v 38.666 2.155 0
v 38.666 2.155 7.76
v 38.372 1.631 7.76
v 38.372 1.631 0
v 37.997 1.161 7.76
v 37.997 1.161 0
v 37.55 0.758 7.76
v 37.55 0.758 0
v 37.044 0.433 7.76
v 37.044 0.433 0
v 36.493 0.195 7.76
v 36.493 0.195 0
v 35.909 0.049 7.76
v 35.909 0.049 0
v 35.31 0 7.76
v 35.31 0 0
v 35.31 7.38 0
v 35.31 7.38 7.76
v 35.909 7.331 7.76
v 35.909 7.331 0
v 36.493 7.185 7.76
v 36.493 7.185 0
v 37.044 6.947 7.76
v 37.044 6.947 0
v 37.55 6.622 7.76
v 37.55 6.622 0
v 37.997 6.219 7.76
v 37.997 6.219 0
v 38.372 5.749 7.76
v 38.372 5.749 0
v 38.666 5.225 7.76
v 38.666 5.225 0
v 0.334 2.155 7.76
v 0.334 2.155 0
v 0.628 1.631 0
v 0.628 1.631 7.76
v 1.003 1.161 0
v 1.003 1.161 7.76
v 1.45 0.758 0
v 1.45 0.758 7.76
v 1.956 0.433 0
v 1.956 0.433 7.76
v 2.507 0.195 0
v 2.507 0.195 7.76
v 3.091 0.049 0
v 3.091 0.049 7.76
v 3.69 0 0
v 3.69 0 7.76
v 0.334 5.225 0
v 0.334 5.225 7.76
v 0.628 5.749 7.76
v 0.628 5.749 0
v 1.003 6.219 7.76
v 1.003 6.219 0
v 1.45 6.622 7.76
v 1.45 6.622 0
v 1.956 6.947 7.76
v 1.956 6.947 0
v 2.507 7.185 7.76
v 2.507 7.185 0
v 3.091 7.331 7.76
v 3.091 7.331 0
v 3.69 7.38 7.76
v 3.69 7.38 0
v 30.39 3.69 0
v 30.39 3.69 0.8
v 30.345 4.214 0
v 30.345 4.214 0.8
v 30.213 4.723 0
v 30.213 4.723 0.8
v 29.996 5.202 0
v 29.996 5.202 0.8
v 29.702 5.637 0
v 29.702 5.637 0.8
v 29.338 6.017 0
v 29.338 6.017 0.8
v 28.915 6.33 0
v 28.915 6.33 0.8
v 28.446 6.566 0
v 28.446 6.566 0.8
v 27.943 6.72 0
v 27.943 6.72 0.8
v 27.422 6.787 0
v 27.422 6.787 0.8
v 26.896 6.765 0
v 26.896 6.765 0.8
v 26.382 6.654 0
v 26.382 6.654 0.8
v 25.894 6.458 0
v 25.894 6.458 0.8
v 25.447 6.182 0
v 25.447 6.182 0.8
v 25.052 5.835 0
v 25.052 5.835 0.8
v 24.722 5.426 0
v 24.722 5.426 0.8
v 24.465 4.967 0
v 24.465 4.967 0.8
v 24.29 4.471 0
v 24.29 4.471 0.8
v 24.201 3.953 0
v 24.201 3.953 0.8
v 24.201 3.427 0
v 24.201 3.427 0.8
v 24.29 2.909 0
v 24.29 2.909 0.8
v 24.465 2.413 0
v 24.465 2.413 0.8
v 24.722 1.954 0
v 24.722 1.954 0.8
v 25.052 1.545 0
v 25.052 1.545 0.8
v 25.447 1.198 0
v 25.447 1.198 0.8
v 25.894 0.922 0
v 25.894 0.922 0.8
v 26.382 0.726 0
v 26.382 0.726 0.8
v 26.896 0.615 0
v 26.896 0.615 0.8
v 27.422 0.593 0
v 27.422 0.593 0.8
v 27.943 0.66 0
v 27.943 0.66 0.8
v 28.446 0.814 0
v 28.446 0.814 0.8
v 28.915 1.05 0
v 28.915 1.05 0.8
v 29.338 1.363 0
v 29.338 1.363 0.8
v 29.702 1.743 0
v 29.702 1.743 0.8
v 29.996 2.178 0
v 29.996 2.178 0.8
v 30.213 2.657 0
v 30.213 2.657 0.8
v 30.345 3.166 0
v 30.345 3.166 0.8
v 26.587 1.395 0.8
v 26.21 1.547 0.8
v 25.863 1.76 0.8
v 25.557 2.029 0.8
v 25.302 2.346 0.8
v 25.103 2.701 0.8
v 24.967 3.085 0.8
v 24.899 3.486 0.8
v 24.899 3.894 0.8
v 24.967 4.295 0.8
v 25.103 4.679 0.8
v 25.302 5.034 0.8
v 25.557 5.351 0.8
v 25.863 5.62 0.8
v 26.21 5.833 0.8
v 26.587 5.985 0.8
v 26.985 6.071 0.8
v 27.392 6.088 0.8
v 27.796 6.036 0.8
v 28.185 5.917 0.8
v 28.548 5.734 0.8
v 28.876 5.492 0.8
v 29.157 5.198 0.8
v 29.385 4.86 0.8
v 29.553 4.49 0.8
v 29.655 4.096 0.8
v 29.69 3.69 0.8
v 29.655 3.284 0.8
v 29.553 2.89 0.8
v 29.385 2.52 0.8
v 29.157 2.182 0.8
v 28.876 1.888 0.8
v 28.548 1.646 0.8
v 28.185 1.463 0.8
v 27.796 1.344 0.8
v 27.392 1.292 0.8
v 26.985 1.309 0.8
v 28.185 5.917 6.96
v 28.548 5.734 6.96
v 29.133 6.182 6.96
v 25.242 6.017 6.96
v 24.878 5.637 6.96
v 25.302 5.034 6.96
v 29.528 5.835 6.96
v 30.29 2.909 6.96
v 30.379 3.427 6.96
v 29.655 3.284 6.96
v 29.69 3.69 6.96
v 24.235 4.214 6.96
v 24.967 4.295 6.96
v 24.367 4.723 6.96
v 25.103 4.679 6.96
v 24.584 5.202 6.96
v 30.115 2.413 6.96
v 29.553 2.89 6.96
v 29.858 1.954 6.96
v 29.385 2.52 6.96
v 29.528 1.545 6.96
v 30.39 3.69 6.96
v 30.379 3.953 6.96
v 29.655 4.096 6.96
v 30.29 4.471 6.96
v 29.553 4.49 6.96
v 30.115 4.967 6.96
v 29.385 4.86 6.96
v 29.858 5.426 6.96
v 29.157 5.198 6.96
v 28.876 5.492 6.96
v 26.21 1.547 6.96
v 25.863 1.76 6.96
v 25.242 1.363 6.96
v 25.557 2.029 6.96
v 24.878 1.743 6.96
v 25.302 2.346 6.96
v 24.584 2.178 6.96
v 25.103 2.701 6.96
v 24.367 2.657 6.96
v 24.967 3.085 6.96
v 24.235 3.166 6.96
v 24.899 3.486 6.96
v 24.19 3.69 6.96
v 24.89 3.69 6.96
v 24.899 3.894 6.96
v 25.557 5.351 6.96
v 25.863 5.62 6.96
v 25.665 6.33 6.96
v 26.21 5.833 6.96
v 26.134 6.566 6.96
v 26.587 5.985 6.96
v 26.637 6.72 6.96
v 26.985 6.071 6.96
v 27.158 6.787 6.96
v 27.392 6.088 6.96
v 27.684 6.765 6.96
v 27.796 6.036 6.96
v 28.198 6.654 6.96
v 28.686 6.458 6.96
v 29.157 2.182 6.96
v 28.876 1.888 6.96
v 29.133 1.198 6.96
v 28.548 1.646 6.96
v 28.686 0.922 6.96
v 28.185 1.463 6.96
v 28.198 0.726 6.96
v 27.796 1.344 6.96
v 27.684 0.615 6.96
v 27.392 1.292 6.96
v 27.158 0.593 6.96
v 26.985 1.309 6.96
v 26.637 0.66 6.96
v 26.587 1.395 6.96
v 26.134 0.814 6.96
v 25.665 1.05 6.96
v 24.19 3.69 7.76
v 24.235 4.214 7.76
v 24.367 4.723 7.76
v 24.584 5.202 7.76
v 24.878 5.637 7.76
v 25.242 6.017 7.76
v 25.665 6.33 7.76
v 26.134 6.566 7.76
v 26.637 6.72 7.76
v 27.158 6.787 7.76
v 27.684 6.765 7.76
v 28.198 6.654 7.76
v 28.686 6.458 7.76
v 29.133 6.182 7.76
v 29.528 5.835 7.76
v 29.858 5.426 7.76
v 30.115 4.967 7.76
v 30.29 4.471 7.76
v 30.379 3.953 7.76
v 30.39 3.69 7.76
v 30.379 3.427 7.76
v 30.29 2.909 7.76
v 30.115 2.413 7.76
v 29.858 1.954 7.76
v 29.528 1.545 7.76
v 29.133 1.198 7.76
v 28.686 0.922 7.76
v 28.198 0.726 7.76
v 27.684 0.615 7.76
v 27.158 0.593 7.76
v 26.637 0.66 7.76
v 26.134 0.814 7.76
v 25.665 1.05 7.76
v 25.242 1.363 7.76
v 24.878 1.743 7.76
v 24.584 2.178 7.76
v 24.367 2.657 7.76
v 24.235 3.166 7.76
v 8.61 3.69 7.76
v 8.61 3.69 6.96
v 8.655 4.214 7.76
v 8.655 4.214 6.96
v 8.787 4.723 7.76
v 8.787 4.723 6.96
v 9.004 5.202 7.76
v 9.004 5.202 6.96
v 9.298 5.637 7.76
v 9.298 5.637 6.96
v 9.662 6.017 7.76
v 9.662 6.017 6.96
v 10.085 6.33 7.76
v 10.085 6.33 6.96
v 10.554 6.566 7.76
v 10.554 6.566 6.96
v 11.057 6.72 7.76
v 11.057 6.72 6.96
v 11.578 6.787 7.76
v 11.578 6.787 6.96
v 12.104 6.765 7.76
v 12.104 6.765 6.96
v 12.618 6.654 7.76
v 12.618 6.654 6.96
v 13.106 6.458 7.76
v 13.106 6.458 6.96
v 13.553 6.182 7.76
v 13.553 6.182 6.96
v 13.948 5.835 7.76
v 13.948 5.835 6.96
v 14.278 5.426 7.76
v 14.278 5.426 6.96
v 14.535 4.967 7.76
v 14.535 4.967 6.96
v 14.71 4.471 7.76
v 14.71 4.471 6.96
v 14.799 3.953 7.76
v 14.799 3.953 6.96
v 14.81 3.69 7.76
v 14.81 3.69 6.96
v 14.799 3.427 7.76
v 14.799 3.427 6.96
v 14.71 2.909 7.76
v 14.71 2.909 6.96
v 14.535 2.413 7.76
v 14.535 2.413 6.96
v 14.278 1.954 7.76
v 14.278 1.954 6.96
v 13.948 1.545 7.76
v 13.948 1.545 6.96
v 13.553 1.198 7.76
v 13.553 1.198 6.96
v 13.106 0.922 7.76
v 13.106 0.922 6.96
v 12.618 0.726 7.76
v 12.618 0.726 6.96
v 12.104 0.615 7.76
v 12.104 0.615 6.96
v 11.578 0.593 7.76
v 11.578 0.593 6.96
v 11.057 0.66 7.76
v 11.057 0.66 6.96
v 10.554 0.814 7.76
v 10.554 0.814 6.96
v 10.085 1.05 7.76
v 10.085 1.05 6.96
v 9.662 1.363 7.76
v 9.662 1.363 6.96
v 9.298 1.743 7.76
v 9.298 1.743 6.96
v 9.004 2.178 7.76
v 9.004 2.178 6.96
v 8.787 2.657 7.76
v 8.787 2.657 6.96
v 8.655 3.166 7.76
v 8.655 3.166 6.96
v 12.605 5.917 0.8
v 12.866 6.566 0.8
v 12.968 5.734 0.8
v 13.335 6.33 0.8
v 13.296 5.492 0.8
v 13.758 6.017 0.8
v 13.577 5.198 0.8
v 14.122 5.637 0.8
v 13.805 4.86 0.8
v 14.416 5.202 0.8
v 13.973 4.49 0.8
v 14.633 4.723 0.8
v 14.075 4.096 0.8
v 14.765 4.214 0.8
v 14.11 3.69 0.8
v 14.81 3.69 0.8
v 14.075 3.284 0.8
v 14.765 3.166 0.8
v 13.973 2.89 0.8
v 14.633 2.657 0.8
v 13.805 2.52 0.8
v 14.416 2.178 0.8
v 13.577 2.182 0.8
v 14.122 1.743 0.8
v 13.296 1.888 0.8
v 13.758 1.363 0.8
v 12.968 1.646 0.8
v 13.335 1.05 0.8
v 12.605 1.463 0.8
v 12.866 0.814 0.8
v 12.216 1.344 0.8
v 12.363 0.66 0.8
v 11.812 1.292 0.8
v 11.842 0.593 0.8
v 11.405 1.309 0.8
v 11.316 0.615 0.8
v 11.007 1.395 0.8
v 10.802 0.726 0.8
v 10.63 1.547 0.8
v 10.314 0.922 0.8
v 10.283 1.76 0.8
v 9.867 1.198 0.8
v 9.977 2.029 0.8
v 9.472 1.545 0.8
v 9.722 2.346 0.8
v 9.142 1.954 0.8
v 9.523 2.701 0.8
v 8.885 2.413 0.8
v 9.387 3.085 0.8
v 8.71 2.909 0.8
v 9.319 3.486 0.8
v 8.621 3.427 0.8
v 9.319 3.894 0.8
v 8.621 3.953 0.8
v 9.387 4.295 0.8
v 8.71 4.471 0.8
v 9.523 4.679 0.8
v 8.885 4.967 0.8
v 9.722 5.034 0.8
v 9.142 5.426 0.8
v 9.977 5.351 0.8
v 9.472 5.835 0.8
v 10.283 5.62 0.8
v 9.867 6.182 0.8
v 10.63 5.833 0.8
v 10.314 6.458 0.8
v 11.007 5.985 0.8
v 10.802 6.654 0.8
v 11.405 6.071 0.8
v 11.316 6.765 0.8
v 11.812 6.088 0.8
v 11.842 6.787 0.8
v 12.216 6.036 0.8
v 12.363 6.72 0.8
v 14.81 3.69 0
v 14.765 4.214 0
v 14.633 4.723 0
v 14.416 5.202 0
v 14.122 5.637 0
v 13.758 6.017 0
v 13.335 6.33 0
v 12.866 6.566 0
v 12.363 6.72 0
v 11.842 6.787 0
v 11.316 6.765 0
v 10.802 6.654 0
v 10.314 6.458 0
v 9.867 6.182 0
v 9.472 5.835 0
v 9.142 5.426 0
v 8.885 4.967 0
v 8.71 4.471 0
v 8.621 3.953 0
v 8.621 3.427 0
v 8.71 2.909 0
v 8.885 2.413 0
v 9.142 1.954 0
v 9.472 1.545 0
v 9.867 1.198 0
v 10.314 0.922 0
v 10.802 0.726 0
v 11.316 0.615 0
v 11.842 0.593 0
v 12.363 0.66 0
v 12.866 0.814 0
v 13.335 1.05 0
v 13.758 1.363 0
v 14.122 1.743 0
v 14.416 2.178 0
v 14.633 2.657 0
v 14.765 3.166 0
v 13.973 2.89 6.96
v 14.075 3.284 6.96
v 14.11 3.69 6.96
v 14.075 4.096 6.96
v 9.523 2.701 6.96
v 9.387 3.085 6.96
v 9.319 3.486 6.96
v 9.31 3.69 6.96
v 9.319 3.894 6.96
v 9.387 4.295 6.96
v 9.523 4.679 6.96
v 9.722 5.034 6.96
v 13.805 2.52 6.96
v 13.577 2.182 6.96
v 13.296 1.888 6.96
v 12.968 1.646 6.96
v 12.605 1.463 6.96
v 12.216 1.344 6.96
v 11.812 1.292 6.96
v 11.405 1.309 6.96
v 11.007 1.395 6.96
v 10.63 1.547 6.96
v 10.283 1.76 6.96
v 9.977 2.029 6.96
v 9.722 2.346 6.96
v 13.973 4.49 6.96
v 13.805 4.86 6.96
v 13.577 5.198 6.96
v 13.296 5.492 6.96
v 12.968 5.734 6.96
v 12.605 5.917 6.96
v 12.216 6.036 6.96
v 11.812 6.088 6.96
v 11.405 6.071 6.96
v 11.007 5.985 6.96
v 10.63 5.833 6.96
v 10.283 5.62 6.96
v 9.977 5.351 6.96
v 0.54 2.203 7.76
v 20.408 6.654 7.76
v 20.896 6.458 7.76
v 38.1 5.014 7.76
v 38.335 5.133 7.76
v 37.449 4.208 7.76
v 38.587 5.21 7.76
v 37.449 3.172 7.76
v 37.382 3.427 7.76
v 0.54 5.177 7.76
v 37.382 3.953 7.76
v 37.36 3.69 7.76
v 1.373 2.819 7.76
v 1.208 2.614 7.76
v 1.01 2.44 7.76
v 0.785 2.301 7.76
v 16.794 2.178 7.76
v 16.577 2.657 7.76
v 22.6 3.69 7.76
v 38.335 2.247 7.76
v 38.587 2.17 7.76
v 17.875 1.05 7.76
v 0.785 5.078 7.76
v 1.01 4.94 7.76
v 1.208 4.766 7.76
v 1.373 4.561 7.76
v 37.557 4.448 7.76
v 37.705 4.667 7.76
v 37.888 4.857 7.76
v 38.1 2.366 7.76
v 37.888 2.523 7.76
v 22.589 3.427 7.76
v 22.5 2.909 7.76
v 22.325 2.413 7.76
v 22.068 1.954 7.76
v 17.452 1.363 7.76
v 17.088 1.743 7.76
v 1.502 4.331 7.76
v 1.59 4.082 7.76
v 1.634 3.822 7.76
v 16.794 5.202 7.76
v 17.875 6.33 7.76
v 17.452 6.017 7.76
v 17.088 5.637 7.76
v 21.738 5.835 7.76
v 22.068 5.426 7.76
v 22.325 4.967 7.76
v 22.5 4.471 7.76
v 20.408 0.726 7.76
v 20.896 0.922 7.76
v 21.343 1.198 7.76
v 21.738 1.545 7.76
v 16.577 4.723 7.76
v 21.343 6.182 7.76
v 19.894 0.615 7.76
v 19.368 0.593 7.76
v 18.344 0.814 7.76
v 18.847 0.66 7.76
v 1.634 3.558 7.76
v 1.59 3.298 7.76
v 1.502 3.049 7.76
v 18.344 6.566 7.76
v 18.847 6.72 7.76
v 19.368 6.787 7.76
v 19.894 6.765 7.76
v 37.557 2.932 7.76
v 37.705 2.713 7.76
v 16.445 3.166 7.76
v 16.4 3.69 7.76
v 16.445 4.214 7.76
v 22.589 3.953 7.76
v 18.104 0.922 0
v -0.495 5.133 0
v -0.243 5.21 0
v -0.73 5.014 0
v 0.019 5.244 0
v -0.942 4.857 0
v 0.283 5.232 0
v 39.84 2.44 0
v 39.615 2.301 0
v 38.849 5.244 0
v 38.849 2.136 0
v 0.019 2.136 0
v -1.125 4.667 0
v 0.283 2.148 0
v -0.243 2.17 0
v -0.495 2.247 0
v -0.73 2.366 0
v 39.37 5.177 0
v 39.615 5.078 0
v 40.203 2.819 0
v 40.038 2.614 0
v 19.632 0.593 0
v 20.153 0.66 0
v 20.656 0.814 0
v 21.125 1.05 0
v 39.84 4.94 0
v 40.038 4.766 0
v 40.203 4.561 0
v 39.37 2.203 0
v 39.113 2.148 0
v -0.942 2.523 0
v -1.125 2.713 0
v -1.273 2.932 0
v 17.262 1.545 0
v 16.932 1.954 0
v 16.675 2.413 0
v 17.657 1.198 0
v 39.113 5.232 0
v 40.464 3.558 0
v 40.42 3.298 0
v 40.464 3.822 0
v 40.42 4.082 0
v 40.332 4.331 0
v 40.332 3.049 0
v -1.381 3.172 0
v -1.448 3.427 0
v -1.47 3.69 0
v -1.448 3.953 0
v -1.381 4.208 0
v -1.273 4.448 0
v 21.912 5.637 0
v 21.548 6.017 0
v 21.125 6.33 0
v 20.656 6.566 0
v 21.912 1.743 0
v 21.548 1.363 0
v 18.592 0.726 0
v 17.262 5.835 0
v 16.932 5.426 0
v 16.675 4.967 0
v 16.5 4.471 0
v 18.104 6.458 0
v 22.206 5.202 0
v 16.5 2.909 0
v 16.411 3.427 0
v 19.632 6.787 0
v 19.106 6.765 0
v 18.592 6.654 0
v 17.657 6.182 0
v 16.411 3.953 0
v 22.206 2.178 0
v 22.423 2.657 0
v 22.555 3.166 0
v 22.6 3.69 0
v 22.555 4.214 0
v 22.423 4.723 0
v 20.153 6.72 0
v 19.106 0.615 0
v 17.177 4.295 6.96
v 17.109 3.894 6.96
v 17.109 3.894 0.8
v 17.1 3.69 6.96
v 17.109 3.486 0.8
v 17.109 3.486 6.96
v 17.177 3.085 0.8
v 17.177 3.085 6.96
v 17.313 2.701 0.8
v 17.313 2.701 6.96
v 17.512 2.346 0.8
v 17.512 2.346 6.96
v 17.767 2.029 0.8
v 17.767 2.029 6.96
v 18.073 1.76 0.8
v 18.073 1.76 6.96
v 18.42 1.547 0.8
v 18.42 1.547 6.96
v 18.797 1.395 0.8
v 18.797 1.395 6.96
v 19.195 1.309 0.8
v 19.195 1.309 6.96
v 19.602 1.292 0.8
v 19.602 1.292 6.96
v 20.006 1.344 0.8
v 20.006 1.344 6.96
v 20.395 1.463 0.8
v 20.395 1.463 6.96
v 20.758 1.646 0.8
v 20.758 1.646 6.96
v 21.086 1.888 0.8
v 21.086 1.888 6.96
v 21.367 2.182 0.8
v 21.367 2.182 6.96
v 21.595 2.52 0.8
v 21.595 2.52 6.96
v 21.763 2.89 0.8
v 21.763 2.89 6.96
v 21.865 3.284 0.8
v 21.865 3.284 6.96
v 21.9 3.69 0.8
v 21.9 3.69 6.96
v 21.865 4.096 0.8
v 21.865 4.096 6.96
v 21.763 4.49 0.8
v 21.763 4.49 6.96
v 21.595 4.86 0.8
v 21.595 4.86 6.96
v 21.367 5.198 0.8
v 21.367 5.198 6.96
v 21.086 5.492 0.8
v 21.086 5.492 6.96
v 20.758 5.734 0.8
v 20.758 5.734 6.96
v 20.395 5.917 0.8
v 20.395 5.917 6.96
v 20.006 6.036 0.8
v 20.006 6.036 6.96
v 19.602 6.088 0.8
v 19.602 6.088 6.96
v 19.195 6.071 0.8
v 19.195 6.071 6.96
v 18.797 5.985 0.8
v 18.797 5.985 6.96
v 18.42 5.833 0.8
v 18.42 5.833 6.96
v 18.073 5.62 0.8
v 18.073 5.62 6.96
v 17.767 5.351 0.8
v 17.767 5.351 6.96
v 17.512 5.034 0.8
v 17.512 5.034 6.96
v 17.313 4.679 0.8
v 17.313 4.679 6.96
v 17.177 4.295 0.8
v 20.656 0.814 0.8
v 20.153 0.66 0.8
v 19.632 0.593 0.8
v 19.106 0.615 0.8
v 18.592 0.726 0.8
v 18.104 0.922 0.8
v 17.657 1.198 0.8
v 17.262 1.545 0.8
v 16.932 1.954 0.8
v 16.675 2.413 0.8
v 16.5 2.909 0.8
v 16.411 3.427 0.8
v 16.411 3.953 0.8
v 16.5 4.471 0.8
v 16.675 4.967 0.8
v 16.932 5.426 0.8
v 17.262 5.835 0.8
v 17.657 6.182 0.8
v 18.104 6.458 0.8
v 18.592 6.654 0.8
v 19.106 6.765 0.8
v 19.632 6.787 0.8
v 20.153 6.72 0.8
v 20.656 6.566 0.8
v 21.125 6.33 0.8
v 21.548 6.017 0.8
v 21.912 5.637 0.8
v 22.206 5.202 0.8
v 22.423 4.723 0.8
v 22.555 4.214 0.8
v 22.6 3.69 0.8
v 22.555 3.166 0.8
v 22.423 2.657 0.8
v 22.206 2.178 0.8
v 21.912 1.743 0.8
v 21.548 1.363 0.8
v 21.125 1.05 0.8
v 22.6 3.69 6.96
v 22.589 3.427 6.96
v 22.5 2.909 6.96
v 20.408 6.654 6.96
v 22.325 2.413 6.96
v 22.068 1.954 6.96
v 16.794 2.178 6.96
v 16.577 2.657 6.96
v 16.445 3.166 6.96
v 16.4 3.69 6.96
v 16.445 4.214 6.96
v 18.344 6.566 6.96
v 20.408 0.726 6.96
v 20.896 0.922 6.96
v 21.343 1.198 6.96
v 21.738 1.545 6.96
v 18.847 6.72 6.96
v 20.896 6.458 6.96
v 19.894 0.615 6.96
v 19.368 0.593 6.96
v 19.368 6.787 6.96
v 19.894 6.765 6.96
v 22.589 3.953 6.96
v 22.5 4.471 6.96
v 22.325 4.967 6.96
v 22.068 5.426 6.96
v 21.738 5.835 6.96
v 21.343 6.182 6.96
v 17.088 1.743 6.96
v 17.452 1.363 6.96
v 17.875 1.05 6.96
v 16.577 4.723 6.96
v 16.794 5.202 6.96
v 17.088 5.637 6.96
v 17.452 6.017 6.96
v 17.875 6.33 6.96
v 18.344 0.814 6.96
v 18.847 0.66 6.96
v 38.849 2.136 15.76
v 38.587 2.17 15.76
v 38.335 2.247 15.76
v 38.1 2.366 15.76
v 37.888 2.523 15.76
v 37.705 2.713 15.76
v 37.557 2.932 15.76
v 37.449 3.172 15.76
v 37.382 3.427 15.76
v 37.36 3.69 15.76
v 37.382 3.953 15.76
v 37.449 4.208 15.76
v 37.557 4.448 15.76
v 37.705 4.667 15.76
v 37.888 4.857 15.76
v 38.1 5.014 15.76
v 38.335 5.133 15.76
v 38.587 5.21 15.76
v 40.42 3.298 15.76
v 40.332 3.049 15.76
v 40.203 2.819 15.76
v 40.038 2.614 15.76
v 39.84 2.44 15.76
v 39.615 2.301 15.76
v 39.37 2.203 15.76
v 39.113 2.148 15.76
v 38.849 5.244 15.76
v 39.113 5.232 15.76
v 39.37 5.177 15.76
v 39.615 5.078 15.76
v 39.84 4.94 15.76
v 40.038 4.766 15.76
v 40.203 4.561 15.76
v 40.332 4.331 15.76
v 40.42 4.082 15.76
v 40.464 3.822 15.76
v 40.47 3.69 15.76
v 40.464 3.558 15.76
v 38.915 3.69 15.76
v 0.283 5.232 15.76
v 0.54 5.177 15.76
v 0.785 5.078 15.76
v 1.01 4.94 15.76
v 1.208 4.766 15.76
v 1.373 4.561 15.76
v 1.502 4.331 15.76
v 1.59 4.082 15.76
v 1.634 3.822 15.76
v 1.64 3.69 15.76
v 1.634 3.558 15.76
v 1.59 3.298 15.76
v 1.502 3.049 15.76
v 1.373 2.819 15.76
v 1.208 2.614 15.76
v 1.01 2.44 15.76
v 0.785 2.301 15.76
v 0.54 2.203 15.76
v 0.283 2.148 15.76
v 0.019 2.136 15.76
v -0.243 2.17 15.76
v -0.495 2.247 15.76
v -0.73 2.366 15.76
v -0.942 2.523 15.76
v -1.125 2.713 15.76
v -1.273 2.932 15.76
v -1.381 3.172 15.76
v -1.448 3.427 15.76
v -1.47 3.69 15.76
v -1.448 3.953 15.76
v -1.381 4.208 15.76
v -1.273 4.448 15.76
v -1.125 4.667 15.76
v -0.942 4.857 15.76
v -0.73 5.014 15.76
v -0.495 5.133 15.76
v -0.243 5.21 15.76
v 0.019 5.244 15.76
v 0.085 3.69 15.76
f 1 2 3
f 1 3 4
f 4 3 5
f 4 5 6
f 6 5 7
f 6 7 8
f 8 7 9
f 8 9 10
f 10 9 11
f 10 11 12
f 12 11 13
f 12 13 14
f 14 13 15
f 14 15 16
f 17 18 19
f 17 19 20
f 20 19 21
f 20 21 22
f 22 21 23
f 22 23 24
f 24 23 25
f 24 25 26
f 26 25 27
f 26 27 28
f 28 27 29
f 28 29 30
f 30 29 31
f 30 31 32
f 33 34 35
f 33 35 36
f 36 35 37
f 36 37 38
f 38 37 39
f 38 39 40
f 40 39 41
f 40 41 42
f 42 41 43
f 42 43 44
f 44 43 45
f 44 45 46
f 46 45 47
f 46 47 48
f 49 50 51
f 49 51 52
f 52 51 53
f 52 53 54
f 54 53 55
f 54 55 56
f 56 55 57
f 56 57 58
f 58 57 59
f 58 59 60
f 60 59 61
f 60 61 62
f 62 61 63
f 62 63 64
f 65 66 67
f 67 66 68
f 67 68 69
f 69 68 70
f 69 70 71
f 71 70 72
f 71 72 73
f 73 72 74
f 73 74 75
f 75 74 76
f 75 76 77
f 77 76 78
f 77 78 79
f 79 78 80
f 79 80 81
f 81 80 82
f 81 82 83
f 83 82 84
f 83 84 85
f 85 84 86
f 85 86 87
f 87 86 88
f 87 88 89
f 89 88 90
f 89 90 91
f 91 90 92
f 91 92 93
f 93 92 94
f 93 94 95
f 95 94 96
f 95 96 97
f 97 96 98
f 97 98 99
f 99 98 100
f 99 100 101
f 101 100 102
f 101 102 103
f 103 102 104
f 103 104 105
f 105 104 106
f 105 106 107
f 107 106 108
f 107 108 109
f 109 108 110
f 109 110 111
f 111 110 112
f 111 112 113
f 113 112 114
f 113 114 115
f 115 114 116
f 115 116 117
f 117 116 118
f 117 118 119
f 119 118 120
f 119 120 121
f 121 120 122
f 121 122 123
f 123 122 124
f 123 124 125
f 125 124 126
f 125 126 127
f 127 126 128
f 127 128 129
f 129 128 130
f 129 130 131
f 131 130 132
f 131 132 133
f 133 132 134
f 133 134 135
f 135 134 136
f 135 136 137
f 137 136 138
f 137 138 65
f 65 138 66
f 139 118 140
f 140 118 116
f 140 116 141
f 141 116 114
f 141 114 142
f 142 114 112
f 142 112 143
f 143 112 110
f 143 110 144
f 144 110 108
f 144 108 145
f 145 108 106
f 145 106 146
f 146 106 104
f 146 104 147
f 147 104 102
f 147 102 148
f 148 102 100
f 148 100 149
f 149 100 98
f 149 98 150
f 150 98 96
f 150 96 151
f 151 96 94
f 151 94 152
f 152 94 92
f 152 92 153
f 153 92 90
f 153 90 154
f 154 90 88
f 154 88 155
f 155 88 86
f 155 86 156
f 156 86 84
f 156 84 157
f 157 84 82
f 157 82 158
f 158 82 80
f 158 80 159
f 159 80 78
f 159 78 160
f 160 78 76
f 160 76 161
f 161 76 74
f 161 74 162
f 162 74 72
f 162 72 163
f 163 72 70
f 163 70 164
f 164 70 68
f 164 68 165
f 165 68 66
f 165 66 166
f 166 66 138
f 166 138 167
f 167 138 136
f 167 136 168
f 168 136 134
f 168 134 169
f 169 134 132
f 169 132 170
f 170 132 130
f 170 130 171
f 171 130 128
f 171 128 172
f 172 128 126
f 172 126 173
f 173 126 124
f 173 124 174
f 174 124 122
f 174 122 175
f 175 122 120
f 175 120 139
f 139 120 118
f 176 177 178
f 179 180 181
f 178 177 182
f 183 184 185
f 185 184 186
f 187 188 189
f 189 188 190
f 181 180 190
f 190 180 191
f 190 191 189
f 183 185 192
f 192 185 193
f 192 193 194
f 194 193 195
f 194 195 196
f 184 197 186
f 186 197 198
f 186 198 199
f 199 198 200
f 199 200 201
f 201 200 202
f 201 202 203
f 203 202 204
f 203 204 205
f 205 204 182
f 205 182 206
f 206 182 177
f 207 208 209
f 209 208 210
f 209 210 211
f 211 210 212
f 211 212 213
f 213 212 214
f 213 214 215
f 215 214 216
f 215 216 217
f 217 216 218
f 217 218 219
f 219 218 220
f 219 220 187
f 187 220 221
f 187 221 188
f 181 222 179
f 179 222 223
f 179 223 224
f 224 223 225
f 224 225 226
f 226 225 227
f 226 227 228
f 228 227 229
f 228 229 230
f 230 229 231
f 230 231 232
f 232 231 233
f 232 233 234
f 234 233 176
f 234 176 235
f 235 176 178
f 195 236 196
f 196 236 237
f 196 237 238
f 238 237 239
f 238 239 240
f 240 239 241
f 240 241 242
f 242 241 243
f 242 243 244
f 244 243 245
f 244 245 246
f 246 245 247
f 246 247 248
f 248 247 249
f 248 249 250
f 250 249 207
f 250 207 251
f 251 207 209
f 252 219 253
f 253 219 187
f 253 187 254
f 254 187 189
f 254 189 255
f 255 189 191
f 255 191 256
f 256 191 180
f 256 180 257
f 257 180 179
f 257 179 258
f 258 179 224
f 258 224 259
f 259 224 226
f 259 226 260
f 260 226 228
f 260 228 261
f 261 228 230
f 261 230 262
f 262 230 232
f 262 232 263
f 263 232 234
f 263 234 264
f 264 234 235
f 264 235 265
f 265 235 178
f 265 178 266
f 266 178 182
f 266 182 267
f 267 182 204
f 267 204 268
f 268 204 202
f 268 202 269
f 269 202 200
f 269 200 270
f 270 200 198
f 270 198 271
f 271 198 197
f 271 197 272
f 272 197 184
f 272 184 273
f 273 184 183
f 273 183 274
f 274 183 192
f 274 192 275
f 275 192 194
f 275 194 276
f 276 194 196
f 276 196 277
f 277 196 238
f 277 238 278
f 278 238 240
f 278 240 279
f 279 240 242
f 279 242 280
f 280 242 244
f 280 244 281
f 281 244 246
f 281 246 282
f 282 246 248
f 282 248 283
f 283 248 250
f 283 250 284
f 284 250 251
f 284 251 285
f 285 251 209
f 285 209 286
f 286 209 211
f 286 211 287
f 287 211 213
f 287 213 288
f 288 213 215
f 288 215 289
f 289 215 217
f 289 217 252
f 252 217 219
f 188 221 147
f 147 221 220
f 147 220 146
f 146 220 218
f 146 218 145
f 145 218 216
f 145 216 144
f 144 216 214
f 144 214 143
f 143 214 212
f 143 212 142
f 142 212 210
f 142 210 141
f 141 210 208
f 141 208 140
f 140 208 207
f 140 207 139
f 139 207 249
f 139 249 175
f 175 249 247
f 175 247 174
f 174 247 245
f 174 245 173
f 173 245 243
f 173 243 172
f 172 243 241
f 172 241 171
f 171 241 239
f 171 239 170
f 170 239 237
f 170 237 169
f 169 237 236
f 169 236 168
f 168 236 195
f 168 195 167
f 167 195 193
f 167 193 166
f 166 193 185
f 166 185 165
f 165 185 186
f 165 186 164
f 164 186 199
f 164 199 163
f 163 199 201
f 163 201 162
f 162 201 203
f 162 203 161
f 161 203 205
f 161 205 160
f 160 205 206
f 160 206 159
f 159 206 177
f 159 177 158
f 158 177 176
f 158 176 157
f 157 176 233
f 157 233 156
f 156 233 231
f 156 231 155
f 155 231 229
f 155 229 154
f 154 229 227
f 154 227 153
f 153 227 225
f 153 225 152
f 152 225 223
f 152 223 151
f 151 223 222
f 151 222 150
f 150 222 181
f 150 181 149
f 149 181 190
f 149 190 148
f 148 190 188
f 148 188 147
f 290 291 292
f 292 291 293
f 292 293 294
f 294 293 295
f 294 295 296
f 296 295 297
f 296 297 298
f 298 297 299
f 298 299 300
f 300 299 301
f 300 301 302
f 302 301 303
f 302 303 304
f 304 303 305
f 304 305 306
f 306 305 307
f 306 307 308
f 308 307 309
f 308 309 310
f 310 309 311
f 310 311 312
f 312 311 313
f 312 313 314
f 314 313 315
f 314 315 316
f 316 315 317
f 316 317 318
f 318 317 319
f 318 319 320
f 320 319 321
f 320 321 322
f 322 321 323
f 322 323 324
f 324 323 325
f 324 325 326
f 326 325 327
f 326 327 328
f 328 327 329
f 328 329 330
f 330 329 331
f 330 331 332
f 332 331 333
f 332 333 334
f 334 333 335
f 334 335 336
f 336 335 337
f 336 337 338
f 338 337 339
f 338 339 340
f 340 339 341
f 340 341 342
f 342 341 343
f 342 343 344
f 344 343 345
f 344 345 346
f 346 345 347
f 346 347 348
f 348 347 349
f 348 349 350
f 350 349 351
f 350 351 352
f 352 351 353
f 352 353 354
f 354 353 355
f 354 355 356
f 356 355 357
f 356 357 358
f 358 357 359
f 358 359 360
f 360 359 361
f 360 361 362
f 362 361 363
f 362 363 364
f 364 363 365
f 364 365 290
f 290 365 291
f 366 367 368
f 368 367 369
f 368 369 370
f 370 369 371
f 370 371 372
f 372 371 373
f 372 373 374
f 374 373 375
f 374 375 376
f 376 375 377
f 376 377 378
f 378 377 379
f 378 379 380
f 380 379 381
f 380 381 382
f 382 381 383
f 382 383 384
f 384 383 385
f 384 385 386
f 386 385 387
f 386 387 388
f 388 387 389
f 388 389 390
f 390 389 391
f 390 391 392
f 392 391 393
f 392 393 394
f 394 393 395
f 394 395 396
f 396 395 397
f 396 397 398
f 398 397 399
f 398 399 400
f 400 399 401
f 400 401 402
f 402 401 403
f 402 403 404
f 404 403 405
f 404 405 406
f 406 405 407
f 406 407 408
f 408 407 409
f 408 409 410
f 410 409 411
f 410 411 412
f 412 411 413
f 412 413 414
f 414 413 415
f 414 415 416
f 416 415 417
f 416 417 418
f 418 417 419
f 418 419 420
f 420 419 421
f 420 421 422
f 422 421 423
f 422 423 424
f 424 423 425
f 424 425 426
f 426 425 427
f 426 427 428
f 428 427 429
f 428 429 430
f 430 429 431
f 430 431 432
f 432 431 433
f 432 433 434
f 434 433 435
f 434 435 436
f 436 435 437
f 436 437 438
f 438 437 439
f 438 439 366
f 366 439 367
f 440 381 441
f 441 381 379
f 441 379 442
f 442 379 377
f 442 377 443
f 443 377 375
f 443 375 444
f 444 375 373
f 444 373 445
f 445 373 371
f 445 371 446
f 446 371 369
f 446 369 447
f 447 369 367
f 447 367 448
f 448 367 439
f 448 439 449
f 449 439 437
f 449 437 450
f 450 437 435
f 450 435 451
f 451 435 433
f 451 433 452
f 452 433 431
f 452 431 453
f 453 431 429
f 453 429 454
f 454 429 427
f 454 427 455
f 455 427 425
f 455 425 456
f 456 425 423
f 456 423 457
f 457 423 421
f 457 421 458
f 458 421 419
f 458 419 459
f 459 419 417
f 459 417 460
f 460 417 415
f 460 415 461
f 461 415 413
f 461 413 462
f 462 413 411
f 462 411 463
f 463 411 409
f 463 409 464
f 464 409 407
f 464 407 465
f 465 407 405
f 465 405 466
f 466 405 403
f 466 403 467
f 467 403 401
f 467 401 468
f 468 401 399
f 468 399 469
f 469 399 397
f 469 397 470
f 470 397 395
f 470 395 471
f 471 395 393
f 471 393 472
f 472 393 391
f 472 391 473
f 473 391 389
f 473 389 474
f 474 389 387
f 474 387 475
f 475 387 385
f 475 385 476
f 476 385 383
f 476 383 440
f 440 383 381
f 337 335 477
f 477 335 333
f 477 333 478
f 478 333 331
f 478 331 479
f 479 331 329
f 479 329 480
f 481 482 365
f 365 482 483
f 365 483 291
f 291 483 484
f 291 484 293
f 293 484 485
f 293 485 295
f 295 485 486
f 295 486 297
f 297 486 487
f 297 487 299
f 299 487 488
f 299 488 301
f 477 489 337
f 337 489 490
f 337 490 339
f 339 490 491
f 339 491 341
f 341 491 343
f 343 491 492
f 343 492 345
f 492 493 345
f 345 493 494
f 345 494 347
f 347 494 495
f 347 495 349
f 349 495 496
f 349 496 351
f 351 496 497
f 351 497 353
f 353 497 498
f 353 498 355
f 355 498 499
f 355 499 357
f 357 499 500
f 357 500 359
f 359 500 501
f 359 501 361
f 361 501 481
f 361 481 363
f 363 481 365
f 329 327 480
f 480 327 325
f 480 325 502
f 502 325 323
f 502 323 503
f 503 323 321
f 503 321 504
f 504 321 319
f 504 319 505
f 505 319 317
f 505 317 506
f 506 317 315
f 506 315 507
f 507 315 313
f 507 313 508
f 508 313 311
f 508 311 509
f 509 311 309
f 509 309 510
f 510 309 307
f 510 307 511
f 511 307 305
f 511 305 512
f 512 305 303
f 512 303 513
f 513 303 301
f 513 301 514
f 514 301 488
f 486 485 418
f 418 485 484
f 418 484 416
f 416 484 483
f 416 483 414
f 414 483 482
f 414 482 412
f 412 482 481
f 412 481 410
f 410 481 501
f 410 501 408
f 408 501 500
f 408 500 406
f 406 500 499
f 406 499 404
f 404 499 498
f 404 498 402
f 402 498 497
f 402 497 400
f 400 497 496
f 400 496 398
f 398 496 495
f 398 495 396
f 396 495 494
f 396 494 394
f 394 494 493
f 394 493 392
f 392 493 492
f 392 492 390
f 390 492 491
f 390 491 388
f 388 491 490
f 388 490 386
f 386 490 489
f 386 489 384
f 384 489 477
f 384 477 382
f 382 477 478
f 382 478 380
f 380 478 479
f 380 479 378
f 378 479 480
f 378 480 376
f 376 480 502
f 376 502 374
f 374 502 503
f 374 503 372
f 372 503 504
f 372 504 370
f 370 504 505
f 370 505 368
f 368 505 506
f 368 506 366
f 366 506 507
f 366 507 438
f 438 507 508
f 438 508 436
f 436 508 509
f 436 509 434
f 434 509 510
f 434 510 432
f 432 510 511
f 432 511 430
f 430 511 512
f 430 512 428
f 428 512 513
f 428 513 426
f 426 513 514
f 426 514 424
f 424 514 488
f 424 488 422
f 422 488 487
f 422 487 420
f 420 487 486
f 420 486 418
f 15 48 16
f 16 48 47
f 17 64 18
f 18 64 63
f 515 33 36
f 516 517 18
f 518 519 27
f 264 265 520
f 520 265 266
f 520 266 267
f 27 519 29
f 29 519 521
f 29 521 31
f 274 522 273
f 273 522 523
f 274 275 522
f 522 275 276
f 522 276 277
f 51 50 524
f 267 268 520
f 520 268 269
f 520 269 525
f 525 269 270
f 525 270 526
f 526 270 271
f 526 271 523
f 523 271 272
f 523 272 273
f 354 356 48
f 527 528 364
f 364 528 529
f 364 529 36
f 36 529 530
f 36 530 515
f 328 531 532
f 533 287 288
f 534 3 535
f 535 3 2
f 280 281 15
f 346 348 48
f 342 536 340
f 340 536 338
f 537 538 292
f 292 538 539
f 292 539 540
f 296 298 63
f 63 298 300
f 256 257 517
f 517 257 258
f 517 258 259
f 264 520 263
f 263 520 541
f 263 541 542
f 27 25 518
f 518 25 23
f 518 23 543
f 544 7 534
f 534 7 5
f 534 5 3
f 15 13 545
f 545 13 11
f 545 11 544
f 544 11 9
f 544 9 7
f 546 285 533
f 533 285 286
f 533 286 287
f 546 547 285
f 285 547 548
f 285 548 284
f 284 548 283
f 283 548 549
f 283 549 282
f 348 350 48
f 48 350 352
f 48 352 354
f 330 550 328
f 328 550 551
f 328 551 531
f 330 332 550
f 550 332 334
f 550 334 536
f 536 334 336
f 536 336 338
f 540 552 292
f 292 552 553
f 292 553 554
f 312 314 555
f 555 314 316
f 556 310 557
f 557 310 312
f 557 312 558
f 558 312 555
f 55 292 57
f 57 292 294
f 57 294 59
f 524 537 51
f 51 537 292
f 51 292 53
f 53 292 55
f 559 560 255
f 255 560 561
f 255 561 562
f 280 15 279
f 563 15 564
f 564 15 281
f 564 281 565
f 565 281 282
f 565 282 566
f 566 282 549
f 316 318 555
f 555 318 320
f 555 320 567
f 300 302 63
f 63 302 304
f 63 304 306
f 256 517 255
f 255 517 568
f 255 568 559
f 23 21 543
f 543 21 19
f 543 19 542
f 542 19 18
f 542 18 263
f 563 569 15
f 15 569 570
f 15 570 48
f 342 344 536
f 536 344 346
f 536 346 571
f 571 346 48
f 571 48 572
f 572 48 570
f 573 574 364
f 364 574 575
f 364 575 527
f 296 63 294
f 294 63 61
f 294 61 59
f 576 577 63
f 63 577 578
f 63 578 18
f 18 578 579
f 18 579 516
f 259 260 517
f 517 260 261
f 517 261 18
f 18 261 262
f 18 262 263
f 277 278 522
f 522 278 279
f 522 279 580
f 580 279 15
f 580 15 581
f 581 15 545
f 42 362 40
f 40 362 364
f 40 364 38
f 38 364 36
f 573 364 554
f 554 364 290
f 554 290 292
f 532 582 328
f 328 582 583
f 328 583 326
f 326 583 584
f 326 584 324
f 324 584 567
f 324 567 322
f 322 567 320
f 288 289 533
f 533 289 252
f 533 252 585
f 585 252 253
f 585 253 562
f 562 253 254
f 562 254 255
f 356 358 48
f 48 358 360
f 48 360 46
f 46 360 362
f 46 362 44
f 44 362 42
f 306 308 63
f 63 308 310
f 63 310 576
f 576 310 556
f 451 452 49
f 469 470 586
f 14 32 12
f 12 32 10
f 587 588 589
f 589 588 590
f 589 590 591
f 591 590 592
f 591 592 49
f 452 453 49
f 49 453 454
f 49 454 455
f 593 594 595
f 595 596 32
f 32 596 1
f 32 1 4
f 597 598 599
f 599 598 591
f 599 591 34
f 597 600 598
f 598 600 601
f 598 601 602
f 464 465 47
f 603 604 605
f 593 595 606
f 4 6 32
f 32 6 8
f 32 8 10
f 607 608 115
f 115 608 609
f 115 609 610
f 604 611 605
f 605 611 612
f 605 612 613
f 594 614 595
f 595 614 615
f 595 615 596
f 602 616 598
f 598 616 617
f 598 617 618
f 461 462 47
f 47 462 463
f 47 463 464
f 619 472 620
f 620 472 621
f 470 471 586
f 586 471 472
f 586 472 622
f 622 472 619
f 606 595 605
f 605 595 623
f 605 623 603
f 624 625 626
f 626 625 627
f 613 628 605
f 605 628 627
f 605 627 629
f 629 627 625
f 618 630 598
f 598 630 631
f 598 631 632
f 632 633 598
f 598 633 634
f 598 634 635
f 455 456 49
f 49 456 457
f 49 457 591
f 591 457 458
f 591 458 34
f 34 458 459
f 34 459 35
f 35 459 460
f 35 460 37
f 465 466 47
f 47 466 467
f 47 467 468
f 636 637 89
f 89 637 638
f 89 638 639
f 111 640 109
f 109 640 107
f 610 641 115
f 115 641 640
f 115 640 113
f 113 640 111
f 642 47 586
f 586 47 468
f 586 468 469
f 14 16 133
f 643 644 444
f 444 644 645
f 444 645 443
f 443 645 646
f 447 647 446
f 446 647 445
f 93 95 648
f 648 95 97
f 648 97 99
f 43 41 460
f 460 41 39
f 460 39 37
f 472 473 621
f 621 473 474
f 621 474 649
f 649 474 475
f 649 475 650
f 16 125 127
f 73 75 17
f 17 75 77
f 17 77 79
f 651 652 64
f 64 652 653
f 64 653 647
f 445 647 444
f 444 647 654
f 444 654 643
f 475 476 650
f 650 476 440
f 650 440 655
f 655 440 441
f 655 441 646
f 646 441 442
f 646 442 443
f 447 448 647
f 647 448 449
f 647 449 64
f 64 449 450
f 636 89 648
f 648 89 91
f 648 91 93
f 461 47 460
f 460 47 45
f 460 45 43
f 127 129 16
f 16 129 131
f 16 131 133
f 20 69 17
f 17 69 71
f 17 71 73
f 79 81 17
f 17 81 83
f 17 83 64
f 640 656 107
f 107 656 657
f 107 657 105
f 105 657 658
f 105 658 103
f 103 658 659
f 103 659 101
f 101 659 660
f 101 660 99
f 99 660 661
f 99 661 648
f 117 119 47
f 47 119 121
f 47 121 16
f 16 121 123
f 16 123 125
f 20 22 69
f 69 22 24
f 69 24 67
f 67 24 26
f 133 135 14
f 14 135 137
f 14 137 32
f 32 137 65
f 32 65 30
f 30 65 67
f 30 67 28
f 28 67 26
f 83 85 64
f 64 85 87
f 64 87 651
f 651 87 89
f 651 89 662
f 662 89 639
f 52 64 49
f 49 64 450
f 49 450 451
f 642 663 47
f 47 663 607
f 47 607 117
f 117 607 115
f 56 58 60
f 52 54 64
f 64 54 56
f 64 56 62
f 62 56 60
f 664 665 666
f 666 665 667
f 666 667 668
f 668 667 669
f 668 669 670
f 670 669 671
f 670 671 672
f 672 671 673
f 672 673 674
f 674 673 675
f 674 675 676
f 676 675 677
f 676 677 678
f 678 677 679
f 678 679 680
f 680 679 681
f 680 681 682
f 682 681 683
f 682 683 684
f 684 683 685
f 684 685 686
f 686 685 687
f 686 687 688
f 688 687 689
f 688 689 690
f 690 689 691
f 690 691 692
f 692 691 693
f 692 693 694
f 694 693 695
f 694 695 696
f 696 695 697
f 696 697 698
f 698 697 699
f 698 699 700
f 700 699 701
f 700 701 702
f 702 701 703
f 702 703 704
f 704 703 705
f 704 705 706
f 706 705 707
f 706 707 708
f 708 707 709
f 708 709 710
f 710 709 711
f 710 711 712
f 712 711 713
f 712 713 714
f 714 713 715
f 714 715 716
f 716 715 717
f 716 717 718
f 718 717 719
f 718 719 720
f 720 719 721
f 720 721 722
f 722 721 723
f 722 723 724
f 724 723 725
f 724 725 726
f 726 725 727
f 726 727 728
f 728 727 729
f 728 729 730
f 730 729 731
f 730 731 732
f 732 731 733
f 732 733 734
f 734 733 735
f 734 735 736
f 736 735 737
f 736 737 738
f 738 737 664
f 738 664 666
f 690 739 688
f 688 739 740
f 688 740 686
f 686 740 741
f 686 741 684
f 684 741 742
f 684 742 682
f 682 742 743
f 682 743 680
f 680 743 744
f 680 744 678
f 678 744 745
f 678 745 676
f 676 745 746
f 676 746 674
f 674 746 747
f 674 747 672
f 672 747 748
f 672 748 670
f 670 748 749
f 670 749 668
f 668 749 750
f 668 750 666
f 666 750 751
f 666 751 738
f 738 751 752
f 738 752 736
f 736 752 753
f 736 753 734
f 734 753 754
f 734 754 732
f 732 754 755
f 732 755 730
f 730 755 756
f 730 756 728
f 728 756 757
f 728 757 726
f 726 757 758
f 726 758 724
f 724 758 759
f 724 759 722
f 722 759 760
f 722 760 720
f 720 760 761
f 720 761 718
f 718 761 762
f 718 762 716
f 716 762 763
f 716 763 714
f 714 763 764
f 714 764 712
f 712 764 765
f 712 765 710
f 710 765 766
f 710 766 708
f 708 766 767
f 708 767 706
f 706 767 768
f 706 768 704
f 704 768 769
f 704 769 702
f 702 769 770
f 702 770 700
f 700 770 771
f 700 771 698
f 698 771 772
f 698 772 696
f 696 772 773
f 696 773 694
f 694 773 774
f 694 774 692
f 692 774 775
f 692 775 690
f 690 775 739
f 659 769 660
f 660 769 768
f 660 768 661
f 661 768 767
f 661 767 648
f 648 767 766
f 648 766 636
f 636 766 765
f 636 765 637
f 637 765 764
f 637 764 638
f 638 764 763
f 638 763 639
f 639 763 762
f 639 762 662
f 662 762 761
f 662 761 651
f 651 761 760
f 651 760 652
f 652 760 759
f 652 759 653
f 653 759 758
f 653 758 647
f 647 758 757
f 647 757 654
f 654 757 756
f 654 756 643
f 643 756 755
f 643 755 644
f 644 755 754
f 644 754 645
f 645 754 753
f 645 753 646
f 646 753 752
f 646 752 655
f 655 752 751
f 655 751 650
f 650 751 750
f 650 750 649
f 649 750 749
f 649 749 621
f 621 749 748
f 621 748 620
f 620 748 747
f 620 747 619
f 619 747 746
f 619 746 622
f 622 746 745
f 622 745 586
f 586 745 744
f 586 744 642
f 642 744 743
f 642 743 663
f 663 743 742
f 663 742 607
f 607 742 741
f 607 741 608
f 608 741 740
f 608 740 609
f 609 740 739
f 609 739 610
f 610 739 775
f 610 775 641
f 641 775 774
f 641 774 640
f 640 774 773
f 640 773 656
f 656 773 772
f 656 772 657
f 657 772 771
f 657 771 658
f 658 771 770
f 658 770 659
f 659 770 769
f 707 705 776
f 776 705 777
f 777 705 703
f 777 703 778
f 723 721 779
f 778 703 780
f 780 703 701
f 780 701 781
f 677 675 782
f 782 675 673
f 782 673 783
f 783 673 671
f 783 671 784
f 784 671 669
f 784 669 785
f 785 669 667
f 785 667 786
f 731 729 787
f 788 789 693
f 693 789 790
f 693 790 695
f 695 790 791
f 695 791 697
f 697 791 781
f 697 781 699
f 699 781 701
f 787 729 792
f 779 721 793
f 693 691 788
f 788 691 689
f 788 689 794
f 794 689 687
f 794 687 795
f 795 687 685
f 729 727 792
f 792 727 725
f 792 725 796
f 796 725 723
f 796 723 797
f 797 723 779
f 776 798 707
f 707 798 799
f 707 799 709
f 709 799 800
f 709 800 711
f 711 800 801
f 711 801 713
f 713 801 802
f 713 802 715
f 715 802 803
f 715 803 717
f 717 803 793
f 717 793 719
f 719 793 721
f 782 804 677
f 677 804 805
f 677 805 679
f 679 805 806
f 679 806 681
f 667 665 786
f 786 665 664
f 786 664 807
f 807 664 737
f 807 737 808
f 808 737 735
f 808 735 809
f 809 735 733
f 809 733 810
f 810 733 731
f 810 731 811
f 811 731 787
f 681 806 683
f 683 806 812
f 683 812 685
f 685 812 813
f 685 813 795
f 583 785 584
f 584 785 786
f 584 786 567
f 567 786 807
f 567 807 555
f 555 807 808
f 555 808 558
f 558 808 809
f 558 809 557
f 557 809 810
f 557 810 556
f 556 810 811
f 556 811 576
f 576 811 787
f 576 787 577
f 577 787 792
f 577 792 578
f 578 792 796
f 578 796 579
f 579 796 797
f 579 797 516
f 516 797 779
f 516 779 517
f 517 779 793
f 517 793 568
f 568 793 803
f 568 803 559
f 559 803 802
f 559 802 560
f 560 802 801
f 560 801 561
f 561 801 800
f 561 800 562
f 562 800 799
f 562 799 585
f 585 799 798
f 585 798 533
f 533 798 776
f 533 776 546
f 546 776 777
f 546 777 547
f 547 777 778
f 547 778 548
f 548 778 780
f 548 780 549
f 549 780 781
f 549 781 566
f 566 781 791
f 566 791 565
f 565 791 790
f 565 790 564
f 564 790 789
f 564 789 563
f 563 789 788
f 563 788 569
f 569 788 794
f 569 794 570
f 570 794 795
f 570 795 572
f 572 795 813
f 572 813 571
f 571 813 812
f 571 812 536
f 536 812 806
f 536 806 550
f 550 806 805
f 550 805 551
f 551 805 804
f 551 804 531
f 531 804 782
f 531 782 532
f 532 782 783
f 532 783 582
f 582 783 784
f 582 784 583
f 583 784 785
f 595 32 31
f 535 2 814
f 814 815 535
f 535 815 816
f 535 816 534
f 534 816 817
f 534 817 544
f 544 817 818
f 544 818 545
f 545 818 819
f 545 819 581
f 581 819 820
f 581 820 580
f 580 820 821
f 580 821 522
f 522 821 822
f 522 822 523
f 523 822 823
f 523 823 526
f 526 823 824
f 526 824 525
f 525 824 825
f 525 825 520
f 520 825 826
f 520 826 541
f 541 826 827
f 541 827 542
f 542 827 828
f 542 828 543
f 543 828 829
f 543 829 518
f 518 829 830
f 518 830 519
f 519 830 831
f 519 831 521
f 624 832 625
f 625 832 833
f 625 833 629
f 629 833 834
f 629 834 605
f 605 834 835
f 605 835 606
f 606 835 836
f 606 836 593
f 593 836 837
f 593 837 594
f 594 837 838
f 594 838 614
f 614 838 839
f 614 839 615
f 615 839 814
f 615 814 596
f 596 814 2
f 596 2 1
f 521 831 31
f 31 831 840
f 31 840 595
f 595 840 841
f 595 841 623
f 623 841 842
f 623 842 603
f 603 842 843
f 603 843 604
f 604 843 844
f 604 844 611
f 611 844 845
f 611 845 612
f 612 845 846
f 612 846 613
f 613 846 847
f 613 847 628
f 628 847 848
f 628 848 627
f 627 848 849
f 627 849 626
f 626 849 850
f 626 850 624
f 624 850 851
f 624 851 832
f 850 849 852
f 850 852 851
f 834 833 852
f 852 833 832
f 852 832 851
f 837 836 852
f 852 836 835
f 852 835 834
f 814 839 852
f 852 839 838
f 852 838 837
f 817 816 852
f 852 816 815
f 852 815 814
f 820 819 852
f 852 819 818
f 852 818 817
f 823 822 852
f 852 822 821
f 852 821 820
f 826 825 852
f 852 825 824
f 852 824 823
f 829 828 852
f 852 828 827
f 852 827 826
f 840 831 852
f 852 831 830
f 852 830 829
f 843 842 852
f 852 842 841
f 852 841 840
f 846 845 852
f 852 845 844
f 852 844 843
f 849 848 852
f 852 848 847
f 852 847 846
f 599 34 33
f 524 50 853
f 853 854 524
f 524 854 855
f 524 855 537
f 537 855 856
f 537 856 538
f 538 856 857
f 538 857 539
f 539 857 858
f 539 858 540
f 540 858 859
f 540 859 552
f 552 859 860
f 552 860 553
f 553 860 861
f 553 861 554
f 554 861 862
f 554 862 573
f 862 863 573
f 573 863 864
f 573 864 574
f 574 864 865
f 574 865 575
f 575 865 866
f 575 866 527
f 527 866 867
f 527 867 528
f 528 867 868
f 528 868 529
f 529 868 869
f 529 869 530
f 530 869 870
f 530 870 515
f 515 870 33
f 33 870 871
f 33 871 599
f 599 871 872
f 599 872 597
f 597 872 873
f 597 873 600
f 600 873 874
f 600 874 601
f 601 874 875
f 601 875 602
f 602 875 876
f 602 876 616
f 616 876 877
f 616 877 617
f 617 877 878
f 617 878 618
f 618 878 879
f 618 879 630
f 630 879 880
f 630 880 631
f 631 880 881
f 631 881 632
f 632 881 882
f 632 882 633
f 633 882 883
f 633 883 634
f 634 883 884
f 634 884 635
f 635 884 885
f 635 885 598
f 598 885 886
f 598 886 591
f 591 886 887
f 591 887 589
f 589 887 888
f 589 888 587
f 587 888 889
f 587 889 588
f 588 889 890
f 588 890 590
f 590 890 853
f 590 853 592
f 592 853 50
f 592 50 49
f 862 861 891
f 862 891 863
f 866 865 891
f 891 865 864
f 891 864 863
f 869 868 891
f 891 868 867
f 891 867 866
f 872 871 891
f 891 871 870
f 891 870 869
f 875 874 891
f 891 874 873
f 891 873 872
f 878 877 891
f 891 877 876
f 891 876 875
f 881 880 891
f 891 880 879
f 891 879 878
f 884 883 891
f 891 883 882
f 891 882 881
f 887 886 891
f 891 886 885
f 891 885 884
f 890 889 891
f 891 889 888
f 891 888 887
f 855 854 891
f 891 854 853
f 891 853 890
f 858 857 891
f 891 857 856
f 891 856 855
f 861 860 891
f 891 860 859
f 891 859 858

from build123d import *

# Parameters (mm, degrees)
SKETCH1_W                = 39
SKETCH1_H                = 7.38
BOSS_EXTRUDE1_DEPTH      = 7.76
SKETCH2_R                = 2.4
CUT_EXTRUDE1_DEPTH       = 7.76
CUT_EXTRUDE2_OUTLINE_R   = 3.1
CUT_EXTRUDE2_OUTLINE_R_2 = 2.4
CUT_EXTRUDE2_DEPTH       = 0.8
CUT_EXTRUDE3_START       = 6.96
CUT_EXTRUDE3_OUTLINE_R   = 3.1
CUT_EXTRUDE3_OUTLINE_R_2 = 2.4
CUT_EXTRUDE3_DEPTH       = 0.8
LPATTERN3_COUNT          = 3
LPATTERN3_PITCH          = 7.79
LPATTERN6_COUNT          = 3
LPATTERN6_PITCH          = 7.79
FILLET1_R                = 3.69
FILLET2_R                = 3.69
FILLET3_R                = 3.69
FILLET4_R                = 3.69
SKETCH3_R                = 3.1
BOSS_EXTRUDE2_DEPTH      = 7.76
BOSS_EXTRUDE3_START      = -7.76
SKETCH4_R                = 3.1
BOSS_EXTRUDE3_DEPTH      = 7.76
SKETCH11_R               = 1.555
BOSS_EXTRUDE7_DEPTH      = 8
SKETCH12_R               = 1.555
BOSS_EXTRUDE8_DEPTH      = 8
SKETCH14_R               = 1.555
BOSS_EXTRUDE9_DEPTH      = 8


# Read off the part's stored shape, not the designer's step: Cut-Extrude2, Cut-Extrude3
with BuildPart() as part:
    # Sketch1 → Boss-Extrude1 (new body)
    with BuildSketch(Plane.XY):
        with Locations((19.5, 3.69)):
            Rectangle(SKETCH1_W, SKETCH1_H)
    extrude(amount=BOSS_EXTRUDE1_DEPTH)

    # Sketch2 → Cut-Extrude1 (cut)
    with BuildSketch(Plane.XY.offset(7.76)):
        with Locations((19.5, 3.69)):
            Circle(SKETCH2_R)
    cut_extrude1 = extrude(amount=-CUT_EXTRUDE1_DEPTH, mode=Mode.SUBTRACT)

    # Cut-Extrude2 outline → Cut-Extrude2 (cut)
    with BuildSketch(Plane.XY):
        with Locations((19.5, 3.69)):
            Circle(CUT_EXTRUDE2_OUTLINE_R)
        with Locations((19.5, 3.69)):
            Circle(CUT_EXTRUDE2_OUTLINE_R_2, mode=Mode.SUBTRACT)
    cut_extrude2 = extrude(amount=CUT_EXTRUDE2_DEPTH, mode=Mode.SUBTRACT)

    # Cut-Extrude3 outline → Cut-Extrude3 (cut)
    with BuildSketch(Plane.XY.offset(CUT_EXTRUDE3_START)):
        with Locations((19.5, 3.69)):
            Circle(CUT_EXTRUDE3_OUTLINE_R)
        with Locations((19.5, 3.69)):
            Circle(CUT_EXTRUDE3_OUTLINE_R_2, mode=Mode.SUBTRACT)
    cut_extrude3 = extrude(amount=CUT_EXTRUDE3_DEPTH, mode=Mode.SUBTRACT)

    # LPattern3: Cut-Extrude1, Cut-Extrude2, Cut-Extrude3 ×3
    with Locations(*[(-i * LPATTERN3_PITCH, 0, 0) for i in range(1, LPATTERN3_COUNT)]):
        add(cut_extrude1, mode=Mode.SUBTRACT)
        add(cut_extrude2, mode=Mode.SUBTRACT)
        add(cut_extrude3, mode=Mode.SUBTRACT)

    # LPattern6: Cut-Extrude1, Cut-Extrude2, Cut-Extrude3 ×3
    with Locations(*[(i * LPATTERN6_PITCH, 0, 0) for i in range(1, LPATTERN6_COUNT)]):
        add(cut_extrude1, mode=Mode.SUBTRACT)
        add(cut_extrude2, mode=Mode.SUBTRACT)
        add(cut_extrude3, mode=Mode.SUBTRACT)

    # Fillet1
    fillet1_edges = [part.edges().sort_by_distance(p)[0] for p in [
        (0, 7.38, 3.88),
    ]]
    fillet(fillet1_edges, radius=FILLET1_R)

    # Fillet2
    fillet2_edges = [part.edges().sort_by_distance(p)[0] for p in [
        (0, 0, 3.88),
    ]]
    fillet(fillet2_edges, radius=FILLET2_R - 0.0001)  # a hair under: the kernel refuses the full size

    # Fillet3
    fillet3_edges = [part.edges().sort_by_distance(p)[0] for p in [
        (39, 7.38, 3.88),
    ]]
    fillet(fillet3_edges, radius=FILLET3_R)

    # Fillet4
    fillet4_edges = [part.edges().sort_by_distance(p)[0] for p in [
        (39, 0, 3.88),
    ]]
    fillet(fillet4_edges, radius=FILLET4_R - 0.0001)  # a hair under: the kernel refuses the full size

    # Sketch3 → Boss-Extrude2 (add)
    with BuildSketch(Plane(origin=(0, 0, 0), x_dir=(-1, 0, 0), z_dir=(0, 0, -1))):
        with Locations((-35.08, 3.69)):
            Circle(SKETCH3_R)
    extrude(amount=-BOSS_EXTRUDE2_DEPTH)

    # Sketch4 → Boss-Extrude3 (add)
    with BuildSketch(Plane.XY.offset(7.76).offset(BOSS_EXTRUDE3_START)):
        with Locations((3.92, 3.69)):
            Circle(SKETCH4_R)
    extrude(amount=BOSS_EXTRUDE3_DEPTH)

    # Sketch11 → Boss-Extrude7 (add)
    with BuildSketch(Plane.XY.offset(7.76)):
        with Locations(Location((0.085, 3.69, 0), (0, 0, 279.228133411))):
            Circle(SKETCH11_R)
        with Locations(Location((38.915, 3.69, 0), (0, 0, 99.228133411))):
            Circle(SKETCH11_R)
    extrude(amount=BOSS_EXTRUDE7_DEPTH)

    # Sketch12 → Boss-Extrude8 (add)
    with BuildSketch(Plane(origin=(0, 0, 0), x_dir=(-1, 0, 0), z_dir=(0, 0, -1))):
        with Locations(Location((-38.915, 3.69, 0), (0, 0, 80.771866589))):
            Circle(SKETCH12_R)
    extrude(amount=-BOSS_EXTRUDE8_DEPTH)

    # Sketch14 → Boss-Extrude9 (add)
    with BuildSketch(Plane(origin=(0, 0, 0), x_dir=(-1, 0, 0), z_dir=(0, 0, -1))):
        with Locations(Location((-0.085, 3.69, 0), (0, 0, 99.228133411))):
            Circle(SKETCH14_R)
    extrude(amount=-BOSS_EXTRUDE9_DEPTH)


solid = part.part
